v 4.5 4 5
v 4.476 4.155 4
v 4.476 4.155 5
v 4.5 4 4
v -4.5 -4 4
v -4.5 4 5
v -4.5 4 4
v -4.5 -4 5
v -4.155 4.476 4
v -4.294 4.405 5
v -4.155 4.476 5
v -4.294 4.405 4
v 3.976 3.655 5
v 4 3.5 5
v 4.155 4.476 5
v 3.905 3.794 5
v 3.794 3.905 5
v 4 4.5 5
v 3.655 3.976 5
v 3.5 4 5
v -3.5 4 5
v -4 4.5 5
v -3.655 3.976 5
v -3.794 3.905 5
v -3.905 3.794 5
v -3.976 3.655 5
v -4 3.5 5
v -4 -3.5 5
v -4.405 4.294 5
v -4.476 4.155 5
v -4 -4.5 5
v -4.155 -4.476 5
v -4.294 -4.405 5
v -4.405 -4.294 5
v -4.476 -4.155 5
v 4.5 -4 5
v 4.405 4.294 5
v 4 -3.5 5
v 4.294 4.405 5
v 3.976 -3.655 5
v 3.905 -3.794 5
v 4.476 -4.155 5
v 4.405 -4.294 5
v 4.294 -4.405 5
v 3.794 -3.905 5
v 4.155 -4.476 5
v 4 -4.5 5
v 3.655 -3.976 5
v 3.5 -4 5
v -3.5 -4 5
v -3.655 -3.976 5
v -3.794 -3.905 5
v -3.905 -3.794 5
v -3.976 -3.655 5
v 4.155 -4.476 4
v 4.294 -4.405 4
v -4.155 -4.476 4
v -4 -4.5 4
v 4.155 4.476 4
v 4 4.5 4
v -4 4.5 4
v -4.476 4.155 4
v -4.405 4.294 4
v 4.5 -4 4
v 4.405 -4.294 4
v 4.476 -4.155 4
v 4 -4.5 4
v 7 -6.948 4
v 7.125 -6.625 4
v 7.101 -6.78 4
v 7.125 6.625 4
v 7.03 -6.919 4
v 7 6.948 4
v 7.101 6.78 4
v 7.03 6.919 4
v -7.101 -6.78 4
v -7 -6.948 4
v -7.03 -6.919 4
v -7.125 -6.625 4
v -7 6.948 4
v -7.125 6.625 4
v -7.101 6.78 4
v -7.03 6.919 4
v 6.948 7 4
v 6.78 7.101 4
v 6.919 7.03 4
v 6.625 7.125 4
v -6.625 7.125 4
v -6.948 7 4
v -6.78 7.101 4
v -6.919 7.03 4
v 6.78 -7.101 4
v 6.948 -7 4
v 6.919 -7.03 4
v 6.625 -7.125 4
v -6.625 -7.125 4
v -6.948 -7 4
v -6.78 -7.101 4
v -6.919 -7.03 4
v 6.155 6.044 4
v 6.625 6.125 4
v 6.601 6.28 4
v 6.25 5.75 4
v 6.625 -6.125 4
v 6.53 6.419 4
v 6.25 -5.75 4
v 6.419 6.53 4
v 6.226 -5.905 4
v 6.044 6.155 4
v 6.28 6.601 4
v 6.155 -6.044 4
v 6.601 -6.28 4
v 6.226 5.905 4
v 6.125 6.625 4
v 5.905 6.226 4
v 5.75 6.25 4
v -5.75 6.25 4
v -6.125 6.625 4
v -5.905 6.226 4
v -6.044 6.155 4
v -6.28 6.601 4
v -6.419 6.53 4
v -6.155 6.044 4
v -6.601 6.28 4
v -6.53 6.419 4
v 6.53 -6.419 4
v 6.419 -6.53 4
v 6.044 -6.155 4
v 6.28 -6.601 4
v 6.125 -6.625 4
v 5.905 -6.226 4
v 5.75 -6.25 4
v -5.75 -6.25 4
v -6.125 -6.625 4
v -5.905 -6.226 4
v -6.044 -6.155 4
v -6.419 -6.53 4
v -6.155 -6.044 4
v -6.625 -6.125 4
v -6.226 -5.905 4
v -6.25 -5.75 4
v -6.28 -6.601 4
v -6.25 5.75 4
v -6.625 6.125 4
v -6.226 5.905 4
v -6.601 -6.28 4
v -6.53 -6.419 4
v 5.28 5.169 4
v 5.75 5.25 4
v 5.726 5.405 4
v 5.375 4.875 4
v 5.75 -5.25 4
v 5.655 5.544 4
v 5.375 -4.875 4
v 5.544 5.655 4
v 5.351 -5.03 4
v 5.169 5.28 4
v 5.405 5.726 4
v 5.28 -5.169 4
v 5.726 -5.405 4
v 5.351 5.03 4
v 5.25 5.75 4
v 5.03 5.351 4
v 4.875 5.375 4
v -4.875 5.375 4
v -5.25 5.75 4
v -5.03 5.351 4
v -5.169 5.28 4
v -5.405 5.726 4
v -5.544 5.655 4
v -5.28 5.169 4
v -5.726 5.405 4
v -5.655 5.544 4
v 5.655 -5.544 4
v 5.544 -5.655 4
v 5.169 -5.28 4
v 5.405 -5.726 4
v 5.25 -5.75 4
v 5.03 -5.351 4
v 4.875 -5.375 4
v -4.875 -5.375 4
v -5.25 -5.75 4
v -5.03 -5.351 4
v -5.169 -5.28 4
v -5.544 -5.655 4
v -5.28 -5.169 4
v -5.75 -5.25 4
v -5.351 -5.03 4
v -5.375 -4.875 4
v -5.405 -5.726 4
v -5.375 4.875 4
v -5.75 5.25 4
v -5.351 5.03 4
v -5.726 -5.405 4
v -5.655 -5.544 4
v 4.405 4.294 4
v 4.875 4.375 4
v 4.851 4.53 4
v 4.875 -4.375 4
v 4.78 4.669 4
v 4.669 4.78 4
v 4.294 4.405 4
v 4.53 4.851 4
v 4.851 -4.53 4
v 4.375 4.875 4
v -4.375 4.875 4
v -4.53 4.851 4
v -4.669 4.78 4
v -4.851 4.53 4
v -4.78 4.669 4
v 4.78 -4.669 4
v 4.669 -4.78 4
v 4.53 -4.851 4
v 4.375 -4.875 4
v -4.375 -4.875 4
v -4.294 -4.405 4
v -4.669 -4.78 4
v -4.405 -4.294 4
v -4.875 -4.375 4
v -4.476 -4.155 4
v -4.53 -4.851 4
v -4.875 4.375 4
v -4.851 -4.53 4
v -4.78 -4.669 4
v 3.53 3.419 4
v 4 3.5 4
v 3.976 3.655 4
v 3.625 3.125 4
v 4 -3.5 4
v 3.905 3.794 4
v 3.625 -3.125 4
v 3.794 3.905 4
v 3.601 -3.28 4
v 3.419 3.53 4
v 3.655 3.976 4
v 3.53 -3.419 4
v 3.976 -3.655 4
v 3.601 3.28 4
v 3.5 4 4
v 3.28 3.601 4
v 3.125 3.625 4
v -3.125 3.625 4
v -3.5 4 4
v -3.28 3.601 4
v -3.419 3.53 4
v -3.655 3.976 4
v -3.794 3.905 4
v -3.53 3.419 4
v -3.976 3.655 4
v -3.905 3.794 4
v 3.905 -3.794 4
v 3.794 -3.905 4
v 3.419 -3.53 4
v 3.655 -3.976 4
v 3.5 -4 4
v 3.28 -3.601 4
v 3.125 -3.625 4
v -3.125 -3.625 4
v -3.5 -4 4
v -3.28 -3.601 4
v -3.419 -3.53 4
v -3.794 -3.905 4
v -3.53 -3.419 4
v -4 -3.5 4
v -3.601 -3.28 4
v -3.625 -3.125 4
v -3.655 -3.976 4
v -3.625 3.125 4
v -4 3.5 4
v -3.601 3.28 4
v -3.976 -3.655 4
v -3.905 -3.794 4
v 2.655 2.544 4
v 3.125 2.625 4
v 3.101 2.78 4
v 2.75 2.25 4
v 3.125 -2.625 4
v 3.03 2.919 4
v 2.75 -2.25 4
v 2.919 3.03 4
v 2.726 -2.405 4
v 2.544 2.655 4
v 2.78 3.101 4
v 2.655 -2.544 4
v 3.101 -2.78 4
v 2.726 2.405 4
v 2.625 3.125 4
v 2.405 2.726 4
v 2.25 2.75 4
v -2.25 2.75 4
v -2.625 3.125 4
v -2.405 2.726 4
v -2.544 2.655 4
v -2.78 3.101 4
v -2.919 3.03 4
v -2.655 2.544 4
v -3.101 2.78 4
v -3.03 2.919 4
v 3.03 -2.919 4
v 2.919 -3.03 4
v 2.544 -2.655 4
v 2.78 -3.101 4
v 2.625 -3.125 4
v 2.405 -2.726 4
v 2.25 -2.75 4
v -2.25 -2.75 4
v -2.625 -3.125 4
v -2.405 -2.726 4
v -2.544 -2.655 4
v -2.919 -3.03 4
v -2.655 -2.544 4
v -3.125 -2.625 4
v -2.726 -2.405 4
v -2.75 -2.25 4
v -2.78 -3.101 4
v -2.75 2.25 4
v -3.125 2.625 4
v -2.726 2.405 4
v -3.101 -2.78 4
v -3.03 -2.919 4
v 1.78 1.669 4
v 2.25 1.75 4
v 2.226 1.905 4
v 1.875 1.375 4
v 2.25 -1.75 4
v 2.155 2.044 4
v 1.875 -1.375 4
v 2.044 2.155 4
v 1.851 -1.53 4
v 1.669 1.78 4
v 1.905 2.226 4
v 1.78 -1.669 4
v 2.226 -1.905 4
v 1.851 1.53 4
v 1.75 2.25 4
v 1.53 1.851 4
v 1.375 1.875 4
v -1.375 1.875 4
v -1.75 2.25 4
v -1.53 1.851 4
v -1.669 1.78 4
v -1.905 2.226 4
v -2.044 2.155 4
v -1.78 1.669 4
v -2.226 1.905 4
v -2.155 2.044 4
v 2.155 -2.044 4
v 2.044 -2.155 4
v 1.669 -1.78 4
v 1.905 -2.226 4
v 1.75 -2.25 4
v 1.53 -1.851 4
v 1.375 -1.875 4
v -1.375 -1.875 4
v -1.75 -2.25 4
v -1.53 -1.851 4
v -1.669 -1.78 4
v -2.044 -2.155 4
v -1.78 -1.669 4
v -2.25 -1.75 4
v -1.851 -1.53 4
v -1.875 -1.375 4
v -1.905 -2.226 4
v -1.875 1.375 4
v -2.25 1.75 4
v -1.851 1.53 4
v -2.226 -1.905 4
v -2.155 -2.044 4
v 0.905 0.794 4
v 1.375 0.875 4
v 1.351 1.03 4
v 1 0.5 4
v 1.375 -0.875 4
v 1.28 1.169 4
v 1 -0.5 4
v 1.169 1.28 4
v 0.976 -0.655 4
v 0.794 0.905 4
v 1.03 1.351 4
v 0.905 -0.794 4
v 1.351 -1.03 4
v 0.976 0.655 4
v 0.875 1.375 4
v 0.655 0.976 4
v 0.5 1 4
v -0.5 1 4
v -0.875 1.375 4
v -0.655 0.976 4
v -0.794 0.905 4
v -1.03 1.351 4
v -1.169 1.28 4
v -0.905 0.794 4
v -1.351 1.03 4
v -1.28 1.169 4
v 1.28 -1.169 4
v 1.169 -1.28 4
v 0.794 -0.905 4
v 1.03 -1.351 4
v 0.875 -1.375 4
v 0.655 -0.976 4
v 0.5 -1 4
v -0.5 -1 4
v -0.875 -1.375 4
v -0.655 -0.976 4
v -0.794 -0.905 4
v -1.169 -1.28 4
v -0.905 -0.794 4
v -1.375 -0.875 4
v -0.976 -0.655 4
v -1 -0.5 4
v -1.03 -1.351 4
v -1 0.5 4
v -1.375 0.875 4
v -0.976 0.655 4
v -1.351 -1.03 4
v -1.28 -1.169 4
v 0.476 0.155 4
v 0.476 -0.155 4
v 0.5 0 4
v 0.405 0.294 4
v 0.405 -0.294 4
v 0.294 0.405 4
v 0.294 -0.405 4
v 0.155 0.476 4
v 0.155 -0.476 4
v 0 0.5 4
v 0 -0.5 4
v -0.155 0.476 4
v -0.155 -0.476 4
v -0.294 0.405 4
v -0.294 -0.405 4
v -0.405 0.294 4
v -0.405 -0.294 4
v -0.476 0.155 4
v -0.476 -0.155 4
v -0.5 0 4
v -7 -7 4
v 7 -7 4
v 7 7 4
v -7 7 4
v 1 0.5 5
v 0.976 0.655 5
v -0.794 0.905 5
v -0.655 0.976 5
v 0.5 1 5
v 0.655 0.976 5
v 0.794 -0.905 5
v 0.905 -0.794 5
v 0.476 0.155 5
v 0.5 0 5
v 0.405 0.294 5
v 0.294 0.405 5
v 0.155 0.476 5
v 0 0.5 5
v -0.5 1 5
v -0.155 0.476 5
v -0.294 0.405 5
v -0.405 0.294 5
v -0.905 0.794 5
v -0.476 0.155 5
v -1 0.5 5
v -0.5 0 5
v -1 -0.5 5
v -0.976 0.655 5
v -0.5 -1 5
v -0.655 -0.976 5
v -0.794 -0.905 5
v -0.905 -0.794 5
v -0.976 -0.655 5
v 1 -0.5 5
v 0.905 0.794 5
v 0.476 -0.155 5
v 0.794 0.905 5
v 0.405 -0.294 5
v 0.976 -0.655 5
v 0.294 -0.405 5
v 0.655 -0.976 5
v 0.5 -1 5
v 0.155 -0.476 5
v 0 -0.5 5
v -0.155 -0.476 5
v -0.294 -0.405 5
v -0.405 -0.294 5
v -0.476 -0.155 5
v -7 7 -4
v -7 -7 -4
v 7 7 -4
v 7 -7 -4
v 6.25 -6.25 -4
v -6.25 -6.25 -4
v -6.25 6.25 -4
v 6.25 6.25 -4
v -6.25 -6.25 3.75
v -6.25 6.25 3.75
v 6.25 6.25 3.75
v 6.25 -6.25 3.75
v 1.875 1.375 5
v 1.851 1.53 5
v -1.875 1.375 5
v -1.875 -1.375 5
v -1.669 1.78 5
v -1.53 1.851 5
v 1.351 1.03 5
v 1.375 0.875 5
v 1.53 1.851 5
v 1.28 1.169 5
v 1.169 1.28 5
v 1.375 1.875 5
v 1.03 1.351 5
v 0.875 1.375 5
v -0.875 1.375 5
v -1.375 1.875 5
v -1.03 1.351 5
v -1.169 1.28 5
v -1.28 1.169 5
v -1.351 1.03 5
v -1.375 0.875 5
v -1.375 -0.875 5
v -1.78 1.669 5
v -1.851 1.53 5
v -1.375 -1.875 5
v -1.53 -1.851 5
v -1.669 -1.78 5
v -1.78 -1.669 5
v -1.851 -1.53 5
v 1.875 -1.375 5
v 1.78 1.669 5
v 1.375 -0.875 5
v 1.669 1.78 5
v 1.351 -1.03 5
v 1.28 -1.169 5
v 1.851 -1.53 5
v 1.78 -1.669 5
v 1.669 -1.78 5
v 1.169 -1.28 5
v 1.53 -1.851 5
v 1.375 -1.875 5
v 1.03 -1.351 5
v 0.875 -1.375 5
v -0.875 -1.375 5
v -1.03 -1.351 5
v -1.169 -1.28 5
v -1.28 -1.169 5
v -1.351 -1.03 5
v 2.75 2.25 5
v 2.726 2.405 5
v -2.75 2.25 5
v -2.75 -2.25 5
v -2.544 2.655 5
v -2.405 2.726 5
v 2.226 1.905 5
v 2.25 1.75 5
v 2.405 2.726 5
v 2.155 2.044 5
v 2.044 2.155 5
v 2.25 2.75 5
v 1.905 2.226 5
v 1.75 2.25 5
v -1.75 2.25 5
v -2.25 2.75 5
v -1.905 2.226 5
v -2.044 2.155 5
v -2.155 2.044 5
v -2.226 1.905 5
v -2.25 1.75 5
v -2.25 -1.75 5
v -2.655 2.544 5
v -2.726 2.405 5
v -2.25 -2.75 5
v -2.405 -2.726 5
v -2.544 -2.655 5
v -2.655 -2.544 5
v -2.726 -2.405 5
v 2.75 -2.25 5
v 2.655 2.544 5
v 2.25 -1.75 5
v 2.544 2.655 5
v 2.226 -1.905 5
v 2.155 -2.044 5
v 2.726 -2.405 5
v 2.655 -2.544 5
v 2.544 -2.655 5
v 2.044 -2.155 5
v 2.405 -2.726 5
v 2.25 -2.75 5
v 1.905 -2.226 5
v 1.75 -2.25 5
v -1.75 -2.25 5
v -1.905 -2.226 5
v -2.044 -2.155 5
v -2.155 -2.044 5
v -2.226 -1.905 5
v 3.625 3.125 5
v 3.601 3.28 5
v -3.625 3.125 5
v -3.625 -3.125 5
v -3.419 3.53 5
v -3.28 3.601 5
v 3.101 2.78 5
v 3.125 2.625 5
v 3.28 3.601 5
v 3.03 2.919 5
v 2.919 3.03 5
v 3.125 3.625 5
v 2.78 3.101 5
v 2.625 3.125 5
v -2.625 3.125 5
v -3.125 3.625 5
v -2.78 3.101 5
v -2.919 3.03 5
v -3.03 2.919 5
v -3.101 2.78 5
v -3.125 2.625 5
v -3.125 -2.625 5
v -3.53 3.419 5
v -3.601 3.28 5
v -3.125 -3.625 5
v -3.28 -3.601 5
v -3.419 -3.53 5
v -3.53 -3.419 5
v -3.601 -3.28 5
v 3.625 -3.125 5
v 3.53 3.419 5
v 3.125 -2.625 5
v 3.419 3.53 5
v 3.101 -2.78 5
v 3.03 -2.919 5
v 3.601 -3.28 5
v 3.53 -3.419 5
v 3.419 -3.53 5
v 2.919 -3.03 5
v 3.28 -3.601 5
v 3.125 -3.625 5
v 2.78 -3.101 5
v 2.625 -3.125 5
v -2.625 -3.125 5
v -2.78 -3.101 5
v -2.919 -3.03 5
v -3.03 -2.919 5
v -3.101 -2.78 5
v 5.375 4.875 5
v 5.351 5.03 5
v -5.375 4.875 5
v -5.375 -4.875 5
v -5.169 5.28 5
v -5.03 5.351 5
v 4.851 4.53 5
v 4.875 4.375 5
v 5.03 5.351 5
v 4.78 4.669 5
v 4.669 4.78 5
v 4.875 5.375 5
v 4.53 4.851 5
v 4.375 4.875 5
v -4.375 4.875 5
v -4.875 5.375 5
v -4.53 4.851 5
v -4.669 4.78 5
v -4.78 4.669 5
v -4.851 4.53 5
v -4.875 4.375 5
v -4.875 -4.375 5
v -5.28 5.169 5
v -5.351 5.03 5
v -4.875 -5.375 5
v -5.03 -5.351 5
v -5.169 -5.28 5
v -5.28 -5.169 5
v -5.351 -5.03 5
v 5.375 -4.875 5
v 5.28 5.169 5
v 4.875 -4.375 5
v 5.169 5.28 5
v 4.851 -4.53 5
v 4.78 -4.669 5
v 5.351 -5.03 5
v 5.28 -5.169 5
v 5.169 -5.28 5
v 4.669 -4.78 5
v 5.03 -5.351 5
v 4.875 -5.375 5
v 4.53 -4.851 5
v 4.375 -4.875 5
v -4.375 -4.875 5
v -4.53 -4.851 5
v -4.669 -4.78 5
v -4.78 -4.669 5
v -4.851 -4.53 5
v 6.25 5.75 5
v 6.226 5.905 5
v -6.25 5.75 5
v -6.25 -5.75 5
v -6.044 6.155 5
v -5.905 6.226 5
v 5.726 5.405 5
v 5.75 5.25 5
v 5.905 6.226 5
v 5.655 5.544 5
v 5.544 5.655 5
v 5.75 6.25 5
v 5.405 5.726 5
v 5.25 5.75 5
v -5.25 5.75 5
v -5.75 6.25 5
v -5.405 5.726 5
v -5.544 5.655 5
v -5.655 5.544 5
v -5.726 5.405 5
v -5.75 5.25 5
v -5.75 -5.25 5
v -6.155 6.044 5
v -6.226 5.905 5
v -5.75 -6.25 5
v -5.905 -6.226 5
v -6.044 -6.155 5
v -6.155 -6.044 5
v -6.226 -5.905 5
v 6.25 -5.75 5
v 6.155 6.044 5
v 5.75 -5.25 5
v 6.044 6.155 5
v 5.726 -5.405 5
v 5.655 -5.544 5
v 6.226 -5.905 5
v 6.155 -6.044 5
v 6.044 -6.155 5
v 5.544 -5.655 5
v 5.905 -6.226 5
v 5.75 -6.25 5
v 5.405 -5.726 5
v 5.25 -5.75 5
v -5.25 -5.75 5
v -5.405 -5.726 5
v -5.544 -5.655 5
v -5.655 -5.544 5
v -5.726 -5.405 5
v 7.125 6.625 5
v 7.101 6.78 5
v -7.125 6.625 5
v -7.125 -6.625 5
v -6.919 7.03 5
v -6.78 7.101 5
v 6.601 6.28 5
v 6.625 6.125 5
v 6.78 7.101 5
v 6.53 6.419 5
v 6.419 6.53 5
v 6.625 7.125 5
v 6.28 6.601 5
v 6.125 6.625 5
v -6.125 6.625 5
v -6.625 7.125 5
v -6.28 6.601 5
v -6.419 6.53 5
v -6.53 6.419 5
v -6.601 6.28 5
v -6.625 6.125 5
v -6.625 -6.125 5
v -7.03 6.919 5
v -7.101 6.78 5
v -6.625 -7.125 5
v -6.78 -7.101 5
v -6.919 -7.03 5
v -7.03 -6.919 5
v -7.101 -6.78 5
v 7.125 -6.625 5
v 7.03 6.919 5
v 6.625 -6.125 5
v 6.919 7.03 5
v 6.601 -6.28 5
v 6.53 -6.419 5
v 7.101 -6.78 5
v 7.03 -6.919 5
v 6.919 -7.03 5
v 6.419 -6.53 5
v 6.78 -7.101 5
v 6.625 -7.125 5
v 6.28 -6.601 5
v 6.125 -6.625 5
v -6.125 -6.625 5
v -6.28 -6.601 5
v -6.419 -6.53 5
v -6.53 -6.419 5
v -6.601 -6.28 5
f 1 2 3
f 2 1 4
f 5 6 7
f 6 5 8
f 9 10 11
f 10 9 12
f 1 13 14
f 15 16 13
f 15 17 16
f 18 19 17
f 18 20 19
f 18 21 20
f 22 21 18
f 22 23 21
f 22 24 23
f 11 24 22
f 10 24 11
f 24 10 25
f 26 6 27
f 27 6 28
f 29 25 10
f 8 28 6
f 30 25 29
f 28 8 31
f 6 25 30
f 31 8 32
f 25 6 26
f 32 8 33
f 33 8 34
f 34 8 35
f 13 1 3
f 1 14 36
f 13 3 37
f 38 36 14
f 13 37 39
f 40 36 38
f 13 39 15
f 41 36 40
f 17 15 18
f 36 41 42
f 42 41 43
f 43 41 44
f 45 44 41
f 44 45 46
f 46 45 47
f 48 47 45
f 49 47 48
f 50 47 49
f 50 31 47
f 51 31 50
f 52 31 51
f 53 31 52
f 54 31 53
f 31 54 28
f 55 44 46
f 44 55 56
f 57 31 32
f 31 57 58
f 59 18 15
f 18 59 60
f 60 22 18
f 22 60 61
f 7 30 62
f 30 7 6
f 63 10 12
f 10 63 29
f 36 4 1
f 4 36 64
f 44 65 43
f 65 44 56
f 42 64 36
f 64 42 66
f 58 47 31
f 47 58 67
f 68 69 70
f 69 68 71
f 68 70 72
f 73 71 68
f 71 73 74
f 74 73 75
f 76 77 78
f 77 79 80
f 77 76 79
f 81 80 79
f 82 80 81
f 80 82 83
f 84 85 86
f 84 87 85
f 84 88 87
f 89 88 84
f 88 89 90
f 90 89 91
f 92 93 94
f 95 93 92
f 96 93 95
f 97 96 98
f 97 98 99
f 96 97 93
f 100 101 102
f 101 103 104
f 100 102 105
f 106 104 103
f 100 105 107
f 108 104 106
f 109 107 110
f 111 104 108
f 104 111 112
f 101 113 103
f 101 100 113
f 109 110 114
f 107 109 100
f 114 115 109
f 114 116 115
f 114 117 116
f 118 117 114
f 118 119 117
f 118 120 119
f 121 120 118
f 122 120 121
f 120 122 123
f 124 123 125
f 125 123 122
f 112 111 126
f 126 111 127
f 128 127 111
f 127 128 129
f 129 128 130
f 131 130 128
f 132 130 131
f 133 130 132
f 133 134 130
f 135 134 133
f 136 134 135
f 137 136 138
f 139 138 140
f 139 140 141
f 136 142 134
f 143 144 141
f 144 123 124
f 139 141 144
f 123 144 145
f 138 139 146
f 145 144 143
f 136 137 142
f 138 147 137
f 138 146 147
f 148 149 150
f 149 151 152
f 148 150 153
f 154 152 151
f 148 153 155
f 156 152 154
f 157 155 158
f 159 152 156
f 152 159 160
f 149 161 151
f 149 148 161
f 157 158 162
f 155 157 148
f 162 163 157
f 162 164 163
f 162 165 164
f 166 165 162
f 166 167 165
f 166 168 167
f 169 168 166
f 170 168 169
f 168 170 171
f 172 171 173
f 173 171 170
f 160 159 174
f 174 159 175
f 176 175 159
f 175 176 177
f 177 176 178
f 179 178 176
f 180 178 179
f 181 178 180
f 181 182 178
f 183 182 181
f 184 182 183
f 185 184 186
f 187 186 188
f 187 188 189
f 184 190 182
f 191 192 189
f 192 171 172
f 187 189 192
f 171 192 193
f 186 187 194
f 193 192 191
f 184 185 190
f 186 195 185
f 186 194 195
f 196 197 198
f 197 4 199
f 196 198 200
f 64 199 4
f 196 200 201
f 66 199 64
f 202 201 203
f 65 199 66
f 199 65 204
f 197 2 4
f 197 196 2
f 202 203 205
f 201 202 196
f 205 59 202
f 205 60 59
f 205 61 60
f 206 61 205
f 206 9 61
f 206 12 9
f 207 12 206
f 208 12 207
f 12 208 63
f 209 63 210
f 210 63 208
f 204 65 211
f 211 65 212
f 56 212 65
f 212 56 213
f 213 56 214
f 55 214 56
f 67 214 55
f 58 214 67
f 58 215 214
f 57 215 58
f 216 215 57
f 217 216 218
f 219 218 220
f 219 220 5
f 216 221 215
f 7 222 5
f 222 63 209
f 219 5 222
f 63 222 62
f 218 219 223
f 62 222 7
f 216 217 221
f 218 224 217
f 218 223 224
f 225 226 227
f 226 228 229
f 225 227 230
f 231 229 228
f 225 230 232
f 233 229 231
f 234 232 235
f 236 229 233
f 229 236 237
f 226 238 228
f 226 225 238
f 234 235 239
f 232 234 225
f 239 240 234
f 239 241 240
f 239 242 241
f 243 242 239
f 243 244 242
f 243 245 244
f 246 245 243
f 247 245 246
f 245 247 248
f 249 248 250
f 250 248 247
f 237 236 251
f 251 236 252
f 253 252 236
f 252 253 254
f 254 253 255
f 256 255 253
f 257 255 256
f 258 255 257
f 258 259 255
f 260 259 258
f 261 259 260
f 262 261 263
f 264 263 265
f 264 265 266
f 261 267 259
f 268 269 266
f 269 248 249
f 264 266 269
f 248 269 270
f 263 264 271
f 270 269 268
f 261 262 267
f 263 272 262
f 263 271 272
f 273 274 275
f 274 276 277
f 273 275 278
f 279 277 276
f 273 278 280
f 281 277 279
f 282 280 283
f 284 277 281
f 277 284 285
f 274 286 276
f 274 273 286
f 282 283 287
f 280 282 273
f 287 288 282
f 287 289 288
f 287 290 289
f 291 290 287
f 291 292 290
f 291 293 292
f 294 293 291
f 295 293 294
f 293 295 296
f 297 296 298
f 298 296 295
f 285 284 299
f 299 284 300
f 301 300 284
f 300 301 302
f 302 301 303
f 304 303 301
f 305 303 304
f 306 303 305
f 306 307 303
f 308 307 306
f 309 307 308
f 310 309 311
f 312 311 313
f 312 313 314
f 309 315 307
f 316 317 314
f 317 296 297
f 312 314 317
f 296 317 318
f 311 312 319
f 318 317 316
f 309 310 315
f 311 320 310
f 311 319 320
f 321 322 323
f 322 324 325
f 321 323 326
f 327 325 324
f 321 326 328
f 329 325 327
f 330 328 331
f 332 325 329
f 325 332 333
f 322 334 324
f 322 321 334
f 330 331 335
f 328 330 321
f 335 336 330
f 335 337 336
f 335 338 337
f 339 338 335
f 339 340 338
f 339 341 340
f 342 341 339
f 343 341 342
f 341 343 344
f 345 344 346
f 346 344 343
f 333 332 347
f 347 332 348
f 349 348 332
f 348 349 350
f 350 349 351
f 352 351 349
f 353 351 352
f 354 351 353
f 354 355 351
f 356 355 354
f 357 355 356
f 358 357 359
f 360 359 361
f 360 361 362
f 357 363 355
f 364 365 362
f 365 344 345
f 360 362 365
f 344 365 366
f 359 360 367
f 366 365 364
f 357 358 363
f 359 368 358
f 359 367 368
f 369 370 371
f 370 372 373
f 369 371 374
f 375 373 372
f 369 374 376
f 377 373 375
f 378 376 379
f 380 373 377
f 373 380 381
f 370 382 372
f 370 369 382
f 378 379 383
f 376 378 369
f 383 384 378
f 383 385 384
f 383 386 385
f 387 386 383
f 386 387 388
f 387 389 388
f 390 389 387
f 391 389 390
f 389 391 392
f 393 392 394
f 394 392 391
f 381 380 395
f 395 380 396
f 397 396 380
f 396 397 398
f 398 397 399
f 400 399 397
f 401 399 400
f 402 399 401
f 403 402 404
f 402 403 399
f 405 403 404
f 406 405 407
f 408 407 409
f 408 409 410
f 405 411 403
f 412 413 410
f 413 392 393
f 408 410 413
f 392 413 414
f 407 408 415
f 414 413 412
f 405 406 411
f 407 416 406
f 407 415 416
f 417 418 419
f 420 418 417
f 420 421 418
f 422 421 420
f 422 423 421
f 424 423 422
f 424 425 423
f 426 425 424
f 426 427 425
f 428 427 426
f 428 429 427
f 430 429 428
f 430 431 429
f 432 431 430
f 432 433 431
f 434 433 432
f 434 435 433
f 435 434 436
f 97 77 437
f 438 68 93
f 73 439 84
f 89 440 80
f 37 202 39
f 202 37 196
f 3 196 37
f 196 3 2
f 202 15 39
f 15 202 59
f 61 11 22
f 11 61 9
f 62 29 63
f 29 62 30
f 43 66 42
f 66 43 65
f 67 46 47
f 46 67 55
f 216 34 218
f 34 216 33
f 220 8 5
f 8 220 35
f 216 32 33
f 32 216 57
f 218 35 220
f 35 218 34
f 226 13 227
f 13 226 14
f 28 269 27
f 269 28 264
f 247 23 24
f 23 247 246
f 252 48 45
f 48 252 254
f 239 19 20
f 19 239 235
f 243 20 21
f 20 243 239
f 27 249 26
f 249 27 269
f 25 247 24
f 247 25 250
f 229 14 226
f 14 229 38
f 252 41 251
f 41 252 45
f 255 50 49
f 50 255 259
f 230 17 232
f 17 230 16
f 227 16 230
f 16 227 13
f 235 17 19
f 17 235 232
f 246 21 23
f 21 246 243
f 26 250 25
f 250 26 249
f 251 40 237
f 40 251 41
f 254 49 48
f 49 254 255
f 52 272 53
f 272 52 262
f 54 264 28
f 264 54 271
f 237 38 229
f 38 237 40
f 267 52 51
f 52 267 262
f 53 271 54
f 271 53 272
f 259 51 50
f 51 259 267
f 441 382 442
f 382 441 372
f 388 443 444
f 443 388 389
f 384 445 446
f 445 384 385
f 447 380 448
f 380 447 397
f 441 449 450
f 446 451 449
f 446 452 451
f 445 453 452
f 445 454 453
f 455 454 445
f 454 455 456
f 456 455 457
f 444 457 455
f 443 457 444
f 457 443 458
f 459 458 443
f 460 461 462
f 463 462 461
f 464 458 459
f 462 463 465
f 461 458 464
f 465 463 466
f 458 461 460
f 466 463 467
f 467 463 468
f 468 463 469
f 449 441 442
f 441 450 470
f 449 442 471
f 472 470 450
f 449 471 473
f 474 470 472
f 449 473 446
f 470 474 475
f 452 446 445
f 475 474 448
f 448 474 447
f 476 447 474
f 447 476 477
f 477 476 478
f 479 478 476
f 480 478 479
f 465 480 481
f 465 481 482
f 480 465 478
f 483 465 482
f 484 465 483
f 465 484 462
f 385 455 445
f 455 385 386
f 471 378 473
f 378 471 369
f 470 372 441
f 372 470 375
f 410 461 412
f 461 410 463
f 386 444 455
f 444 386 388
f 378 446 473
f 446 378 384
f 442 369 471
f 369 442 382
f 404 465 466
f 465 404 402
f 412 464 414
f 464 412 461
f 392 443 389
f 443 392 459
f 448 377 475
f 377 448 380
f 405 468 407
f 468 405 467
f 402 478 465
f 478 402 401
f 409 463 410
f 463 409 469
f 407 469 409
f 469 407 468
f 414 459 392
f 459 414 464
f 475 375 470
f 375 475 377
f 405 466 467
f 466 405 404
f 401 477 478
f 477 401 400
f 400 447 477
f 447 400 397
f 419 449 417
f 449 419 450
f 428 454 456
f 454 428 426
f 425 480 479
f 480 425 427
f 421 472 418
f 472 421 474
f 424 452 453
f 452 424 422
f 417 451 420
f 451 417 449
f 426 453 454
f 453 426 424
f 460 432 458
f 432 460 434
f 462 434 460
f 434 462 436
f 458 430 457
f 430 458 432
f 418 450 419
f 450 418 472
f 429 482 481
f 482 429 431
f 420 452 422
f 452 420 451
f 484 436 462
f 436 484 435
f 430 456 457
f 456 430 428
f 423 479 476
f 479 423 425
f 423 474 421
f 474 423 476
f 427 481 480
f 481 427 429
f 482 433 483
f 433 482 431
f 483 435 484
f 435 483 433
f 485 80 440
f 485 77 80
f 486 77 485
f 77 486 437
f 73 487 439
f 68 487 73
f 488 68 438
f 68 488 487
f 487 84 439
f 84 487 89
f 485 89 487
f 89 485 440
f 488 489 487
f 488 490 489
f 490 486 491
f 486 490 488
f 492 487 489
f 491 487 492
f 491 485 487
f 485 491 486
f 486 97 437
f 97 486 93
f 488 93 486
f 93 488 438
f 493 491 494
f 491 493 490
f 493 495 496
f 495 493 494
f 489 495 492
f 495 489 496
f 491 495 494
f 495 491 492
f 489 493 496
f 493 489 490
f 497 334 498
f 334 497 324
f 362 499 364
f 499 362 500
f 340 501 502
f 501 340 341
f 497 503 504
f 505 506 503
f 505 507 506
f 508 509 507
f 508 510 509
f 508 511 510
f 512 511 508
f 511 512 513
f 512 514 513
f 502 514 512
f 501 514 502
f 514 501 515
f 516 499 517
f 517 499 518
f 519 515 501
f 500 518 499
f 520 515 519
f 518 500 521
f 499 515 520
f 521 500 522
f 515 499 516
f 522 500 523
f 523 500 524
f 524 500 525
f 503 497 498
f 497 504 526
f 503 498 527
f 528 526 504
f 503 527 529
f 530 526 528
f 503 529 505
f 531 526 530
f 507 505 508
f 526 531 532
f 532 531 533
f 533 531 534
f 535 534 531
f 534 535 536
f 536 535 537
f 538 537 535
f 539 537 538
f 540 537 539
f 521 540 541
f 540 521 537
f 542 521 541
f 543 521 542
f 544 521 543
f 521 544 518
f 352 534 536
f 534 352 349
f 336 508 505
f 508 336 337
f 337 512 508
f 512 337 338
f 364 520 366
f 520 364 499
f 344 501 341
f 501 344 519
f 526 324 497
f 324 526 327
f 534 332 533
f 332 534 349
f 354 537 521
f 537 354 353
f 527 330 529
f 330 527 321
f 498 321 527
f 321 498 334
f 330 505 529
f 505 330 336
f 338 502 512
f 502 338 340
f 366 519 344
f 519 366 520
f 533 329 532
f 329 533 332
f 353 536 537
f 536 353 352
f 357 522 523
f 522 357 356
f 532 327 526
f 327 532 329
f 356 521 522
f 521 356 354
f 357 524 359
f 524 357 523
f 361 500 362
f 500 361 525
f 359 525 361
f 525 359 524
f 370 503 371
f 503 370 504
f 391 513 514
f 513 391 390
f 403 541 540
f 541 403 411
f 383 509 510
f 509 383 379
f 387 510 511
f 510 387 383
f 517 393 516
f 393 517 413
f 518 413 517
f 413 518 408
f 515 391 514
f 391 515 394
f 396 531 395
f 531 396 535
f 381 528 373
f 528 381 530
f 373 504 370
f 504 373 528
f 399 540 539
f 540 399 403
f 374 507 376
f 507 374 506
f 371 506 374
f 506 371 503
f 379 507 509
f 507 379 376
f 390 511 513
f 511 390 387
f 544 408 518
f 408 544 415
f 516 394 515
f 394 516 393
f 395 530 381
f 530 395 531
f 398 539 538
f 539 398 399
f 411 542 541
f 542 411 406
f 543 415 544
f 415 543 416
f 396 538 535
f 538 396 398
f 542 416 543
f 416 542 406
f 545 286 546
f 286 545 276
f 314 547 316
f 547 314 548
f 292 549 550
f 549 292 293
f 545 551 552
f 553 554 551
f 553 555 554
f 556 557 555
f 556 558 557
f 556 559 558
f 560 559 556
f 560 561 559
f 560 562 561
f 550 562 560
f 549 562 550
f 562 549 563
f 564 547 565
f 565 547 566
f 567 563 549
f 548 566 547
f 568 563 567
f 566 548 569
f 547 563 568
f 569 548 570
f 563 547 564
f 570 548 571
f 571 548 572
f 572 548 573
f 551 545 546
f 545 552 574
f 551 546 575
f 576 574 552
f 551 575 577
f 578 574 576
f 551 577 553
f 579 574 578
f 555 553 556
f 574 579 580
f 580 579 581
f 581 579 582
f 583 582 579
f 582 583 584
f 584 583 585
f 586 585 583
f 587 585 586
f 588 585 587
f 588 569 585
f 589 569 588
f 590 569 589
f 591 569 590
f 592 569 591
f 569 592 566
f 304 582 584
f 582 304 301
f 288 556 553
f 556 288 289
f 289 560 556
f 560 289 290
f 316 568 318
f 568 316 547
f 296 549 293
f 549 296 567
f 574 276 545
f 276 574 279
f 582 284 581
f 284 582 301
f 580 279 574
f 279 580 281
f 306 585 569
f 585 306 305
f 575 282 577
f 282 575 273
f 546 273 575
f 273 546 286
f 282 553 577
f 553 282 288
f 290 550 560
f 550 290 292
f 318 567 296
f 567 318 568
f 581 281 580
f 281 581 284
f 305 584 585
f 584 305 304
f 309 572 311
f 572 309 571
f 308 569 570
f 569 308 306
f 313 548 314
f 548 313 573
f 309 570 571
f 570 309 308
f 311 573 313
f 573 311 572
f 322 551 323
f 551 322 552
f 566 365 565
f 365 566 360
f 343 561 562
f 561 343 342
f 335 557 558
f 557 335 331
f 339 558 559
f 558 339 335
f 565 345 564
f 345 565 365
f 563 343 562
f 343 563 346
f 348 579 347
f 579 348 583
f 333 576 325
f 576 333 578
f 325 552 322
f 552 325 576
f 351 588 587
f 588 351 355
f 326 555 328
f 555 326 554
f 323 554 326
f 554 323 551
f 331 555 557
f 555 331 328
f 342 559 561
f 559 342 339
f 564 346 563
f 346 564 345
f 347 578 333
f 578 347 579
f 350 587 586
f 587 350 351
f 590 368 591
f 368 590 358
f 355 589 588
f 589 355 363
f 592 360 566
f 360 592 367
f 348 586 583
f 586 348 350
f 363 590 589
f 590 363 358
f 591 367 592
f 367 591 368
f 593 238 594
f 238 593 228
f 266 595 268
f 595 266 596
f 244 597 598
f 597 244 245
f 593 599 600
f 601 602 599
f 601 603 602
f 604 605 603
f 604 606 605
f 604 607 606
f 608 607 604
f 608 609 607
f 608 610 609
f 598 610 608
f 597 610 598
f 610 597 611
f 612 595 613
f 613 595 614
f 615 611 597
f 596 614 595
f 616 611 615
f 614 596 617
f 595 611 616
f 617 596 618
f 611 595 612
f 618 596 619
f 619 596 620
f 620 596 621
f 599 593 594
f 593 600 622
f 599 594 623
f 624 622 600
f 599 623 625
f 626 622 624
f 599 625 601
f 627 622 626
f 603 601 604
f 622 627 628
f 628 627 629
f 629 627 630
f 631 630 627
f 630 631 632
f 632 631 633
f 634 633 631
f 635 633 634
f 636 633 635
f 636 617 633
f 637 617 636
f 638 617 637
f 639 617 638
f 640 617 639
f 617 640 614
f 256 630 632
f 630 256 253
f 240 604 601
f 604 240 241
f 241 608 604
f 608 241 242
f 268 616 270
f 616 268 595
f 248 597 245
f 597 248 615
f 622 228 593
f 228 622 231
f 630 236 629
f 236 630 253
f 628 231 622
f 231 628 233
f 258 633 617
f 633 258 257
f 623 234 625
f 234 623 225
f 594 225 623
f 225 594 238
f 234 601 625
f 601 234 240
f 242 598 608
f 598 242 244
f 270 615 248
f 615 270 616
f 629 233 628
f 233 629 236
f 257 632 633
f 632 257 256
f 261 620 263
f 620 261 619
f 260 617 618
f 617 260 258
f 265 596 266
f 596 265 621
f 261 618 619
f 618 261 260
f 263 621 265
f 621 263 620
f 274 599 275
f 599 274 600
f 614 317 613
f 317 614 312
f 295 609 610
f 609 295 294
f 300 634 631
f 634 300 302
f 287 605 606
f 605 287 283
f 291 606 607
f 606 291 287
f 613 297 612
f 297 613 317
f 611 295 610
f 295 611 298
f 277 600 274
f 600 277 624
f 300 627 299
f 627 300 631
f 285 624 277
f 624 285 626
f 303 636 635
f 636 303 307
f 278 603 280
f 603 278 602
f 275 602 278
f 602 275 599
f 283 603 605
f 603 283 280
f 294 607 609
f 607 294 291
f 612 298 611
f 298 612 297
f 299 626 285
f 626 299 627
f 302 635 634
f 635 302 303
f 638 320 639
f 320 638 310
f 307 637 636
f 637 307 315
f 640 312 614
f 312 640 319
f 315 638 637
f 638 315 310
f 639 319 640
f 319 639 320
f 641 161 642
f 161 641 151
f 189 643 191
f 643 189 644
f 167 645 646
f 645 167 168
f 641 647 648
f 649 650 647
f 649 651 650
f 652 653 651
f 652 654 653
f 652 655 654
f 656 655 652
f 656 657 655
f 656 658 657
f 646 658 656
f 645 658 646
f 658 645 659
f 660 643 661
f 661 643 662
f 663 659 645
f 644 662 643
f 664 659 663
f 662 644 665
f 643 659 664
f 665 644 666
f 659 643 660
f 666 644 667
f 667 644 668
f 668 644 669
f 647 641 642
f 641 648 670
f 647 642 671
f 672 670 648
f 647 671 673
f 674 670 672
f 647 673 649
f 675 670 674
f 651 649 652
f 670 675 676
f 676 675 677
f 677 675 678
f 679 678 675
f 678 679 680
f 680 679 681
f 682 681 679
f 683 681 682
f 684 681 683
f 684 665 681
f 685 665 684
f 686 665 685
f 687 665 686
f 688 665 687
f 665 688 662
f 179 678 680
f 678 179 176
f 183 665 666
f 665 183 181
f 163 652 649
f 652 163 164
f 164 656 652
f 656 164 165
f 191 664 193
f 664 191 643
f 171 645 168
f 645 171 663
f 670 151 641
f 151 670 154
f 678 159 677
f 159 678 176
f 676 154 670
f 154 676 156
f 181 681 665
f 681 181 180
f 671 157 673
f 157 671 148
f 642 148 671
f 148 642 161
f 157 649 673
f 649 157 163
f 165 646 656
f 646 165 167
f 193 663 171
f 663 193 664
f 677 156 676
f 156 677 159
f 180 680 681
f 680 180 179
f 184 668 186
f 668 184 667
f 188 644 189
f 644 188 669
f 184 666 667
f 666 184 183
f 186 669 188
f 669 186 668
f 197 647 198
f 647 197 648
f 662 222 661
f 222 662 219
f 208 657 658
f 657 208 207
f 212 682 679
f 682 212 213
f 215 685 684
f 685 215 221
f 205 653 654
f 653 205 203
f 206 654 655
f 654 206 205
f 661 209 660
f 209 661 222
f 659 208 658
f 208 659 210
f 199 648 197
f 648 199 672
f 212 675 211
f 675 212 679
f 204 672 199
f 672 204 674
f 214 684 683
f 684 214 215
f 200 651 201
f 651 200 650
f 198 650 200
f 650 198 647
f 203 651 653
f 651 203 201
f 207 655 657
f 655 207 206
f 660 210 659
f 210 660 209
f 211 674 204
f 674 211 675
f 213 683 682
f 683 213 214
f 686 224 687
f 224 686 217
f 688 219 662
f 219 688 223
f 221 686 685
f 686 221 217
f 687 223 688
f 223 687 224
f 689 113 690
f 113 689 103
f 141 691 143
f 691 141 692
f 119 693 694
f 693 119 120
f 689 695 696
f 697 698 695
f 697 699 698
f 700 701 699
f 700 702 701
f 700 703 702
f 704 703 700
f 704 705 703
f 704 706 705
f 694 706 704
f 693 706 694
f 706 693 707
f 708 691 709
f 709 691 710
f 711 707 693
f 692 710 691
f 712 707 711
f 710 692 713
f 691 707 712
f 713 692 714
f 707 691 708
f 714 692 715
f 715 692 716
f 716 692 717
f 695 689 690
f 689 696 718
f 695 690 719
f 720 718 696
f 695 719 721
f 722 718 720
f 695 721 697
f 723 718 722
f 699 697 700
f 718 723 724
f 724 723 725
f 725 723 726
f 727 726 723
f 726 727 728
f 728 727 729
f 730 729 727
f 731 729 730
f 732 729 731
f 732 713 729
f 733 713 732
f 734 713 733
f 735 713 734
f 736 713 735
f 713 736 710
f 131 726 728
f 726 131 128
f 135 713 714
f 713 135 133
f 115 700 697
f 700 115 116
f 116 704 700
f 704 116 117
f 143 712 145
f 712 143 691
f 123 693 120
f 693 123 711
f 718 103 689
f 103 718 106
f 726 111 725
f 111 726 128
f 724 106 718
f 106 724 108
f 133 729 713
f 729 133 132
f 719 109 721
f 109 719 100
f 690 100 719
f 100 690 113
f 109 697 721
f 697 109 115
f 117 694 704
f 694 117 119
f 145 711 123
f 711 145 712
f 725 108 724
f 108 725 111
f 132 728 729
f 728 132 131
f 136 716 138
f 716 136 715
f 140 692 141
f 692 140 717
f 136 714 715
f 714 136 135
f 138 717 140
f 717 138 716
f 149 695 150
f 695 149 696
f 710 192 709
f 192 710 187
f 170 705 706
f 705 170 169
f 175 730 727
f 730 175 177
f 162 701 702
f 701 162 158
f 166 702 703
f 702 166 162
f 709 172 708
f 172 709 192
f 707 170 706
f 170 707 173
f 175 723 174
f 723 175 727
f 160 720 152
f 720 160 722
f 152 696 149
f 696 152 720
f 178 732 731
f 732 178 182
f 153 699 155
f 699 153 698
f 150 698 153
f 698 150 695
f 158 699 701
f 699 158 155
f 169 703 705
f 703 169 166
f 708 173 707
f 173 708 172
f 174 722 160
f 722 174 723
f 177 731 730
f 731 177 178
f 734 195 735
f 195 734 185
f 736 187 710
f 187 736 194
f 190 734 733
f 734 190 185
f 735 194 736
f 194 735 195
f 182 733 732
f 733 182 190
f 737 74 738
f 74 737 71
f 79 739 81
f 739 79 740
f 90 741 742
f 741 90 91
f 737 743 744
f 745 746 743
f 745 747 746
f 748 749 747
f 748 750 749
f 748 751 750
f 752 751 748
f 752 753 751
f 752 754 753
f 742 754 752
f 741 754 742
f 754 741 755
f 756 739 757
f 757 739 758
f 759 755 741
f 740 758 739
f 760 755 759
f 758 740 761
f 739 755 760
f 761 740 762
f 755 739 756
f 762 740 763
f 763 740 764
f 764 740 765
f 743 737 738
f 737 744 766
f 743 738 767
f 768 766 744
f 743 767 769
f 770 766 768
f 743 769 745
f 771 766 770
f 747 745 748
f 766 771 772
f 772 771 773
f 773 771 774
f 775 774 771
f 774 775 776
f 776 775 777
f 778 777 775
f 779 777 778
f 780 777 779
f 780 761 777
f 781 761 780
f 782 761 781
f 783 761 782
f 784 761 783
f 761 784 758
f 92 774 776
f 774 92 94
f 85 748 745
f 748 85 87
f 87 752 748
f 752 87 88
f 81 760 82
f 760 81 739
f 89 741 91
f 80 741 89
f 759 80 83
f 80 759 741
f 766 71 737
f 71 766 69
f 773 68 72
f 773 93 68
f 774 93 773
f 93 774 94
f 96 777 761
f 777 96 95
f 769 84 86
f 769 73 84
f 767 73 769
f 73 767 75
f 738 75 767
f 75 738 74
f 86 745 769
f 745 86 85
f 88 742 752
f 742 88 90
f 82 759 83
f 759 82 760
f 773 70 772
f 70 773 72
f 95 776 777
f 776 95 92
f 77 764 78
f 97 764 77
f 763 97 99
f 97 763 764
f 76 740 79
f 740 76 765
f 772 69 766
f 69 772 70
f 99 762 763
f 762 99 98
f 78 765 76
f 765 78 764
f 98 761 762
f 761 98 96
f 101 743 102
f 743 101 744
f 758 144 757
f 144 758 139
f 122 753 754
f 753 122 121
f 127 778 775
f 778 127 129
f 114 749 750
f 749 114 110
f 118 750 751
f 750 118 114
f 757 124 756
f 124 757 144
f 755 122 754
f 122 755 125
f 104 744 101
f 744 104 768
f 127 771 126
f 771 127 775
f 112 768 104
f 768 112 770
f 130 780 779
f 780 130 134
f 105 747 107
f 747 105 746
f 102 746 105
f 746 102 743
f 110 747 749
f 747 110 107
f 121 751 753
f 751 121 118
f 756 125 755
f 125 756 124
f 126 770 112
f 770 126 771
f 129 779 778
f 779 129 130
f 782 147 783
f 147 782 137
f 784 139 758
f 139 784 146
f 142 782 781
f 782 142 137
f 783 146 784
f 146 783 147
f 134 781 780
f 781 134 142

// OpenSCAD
module roundedsquare(l,r,h) {
	l2 = l/2-r;
	hull() {
	translate([l2,l2,0])
		cylinder(d=r*2,h=h,center=true,$fn=20);
	translate([-l2,l2,0])
		cylinder(d=r*2,h=h,center=true,$fn=20);
	translate([l2,-l2,0])
		cylinder(d=r*2,h=h,center=true,$fn=20);
	translate([-l2,-l2,0])
		cylinder(d=r*2,h=h,center=true,$fn=20);
	}
}

module headlight() {
	difference() {
	cube([14,14,8],center=true);
	translate([0,0,-0.5])
		cube([12.5,12.5,8.5],center=true);
		
	}

	for(s = [2 : 1.75 : 15])
	{
		translate([0,0,4.5])
		difference() {
		roundedsquare(s,0.5,1);
			translate([0,0,-0.5])
				roundedsquare(s-1,0.5,2);
		}
	}
}


headlight();
